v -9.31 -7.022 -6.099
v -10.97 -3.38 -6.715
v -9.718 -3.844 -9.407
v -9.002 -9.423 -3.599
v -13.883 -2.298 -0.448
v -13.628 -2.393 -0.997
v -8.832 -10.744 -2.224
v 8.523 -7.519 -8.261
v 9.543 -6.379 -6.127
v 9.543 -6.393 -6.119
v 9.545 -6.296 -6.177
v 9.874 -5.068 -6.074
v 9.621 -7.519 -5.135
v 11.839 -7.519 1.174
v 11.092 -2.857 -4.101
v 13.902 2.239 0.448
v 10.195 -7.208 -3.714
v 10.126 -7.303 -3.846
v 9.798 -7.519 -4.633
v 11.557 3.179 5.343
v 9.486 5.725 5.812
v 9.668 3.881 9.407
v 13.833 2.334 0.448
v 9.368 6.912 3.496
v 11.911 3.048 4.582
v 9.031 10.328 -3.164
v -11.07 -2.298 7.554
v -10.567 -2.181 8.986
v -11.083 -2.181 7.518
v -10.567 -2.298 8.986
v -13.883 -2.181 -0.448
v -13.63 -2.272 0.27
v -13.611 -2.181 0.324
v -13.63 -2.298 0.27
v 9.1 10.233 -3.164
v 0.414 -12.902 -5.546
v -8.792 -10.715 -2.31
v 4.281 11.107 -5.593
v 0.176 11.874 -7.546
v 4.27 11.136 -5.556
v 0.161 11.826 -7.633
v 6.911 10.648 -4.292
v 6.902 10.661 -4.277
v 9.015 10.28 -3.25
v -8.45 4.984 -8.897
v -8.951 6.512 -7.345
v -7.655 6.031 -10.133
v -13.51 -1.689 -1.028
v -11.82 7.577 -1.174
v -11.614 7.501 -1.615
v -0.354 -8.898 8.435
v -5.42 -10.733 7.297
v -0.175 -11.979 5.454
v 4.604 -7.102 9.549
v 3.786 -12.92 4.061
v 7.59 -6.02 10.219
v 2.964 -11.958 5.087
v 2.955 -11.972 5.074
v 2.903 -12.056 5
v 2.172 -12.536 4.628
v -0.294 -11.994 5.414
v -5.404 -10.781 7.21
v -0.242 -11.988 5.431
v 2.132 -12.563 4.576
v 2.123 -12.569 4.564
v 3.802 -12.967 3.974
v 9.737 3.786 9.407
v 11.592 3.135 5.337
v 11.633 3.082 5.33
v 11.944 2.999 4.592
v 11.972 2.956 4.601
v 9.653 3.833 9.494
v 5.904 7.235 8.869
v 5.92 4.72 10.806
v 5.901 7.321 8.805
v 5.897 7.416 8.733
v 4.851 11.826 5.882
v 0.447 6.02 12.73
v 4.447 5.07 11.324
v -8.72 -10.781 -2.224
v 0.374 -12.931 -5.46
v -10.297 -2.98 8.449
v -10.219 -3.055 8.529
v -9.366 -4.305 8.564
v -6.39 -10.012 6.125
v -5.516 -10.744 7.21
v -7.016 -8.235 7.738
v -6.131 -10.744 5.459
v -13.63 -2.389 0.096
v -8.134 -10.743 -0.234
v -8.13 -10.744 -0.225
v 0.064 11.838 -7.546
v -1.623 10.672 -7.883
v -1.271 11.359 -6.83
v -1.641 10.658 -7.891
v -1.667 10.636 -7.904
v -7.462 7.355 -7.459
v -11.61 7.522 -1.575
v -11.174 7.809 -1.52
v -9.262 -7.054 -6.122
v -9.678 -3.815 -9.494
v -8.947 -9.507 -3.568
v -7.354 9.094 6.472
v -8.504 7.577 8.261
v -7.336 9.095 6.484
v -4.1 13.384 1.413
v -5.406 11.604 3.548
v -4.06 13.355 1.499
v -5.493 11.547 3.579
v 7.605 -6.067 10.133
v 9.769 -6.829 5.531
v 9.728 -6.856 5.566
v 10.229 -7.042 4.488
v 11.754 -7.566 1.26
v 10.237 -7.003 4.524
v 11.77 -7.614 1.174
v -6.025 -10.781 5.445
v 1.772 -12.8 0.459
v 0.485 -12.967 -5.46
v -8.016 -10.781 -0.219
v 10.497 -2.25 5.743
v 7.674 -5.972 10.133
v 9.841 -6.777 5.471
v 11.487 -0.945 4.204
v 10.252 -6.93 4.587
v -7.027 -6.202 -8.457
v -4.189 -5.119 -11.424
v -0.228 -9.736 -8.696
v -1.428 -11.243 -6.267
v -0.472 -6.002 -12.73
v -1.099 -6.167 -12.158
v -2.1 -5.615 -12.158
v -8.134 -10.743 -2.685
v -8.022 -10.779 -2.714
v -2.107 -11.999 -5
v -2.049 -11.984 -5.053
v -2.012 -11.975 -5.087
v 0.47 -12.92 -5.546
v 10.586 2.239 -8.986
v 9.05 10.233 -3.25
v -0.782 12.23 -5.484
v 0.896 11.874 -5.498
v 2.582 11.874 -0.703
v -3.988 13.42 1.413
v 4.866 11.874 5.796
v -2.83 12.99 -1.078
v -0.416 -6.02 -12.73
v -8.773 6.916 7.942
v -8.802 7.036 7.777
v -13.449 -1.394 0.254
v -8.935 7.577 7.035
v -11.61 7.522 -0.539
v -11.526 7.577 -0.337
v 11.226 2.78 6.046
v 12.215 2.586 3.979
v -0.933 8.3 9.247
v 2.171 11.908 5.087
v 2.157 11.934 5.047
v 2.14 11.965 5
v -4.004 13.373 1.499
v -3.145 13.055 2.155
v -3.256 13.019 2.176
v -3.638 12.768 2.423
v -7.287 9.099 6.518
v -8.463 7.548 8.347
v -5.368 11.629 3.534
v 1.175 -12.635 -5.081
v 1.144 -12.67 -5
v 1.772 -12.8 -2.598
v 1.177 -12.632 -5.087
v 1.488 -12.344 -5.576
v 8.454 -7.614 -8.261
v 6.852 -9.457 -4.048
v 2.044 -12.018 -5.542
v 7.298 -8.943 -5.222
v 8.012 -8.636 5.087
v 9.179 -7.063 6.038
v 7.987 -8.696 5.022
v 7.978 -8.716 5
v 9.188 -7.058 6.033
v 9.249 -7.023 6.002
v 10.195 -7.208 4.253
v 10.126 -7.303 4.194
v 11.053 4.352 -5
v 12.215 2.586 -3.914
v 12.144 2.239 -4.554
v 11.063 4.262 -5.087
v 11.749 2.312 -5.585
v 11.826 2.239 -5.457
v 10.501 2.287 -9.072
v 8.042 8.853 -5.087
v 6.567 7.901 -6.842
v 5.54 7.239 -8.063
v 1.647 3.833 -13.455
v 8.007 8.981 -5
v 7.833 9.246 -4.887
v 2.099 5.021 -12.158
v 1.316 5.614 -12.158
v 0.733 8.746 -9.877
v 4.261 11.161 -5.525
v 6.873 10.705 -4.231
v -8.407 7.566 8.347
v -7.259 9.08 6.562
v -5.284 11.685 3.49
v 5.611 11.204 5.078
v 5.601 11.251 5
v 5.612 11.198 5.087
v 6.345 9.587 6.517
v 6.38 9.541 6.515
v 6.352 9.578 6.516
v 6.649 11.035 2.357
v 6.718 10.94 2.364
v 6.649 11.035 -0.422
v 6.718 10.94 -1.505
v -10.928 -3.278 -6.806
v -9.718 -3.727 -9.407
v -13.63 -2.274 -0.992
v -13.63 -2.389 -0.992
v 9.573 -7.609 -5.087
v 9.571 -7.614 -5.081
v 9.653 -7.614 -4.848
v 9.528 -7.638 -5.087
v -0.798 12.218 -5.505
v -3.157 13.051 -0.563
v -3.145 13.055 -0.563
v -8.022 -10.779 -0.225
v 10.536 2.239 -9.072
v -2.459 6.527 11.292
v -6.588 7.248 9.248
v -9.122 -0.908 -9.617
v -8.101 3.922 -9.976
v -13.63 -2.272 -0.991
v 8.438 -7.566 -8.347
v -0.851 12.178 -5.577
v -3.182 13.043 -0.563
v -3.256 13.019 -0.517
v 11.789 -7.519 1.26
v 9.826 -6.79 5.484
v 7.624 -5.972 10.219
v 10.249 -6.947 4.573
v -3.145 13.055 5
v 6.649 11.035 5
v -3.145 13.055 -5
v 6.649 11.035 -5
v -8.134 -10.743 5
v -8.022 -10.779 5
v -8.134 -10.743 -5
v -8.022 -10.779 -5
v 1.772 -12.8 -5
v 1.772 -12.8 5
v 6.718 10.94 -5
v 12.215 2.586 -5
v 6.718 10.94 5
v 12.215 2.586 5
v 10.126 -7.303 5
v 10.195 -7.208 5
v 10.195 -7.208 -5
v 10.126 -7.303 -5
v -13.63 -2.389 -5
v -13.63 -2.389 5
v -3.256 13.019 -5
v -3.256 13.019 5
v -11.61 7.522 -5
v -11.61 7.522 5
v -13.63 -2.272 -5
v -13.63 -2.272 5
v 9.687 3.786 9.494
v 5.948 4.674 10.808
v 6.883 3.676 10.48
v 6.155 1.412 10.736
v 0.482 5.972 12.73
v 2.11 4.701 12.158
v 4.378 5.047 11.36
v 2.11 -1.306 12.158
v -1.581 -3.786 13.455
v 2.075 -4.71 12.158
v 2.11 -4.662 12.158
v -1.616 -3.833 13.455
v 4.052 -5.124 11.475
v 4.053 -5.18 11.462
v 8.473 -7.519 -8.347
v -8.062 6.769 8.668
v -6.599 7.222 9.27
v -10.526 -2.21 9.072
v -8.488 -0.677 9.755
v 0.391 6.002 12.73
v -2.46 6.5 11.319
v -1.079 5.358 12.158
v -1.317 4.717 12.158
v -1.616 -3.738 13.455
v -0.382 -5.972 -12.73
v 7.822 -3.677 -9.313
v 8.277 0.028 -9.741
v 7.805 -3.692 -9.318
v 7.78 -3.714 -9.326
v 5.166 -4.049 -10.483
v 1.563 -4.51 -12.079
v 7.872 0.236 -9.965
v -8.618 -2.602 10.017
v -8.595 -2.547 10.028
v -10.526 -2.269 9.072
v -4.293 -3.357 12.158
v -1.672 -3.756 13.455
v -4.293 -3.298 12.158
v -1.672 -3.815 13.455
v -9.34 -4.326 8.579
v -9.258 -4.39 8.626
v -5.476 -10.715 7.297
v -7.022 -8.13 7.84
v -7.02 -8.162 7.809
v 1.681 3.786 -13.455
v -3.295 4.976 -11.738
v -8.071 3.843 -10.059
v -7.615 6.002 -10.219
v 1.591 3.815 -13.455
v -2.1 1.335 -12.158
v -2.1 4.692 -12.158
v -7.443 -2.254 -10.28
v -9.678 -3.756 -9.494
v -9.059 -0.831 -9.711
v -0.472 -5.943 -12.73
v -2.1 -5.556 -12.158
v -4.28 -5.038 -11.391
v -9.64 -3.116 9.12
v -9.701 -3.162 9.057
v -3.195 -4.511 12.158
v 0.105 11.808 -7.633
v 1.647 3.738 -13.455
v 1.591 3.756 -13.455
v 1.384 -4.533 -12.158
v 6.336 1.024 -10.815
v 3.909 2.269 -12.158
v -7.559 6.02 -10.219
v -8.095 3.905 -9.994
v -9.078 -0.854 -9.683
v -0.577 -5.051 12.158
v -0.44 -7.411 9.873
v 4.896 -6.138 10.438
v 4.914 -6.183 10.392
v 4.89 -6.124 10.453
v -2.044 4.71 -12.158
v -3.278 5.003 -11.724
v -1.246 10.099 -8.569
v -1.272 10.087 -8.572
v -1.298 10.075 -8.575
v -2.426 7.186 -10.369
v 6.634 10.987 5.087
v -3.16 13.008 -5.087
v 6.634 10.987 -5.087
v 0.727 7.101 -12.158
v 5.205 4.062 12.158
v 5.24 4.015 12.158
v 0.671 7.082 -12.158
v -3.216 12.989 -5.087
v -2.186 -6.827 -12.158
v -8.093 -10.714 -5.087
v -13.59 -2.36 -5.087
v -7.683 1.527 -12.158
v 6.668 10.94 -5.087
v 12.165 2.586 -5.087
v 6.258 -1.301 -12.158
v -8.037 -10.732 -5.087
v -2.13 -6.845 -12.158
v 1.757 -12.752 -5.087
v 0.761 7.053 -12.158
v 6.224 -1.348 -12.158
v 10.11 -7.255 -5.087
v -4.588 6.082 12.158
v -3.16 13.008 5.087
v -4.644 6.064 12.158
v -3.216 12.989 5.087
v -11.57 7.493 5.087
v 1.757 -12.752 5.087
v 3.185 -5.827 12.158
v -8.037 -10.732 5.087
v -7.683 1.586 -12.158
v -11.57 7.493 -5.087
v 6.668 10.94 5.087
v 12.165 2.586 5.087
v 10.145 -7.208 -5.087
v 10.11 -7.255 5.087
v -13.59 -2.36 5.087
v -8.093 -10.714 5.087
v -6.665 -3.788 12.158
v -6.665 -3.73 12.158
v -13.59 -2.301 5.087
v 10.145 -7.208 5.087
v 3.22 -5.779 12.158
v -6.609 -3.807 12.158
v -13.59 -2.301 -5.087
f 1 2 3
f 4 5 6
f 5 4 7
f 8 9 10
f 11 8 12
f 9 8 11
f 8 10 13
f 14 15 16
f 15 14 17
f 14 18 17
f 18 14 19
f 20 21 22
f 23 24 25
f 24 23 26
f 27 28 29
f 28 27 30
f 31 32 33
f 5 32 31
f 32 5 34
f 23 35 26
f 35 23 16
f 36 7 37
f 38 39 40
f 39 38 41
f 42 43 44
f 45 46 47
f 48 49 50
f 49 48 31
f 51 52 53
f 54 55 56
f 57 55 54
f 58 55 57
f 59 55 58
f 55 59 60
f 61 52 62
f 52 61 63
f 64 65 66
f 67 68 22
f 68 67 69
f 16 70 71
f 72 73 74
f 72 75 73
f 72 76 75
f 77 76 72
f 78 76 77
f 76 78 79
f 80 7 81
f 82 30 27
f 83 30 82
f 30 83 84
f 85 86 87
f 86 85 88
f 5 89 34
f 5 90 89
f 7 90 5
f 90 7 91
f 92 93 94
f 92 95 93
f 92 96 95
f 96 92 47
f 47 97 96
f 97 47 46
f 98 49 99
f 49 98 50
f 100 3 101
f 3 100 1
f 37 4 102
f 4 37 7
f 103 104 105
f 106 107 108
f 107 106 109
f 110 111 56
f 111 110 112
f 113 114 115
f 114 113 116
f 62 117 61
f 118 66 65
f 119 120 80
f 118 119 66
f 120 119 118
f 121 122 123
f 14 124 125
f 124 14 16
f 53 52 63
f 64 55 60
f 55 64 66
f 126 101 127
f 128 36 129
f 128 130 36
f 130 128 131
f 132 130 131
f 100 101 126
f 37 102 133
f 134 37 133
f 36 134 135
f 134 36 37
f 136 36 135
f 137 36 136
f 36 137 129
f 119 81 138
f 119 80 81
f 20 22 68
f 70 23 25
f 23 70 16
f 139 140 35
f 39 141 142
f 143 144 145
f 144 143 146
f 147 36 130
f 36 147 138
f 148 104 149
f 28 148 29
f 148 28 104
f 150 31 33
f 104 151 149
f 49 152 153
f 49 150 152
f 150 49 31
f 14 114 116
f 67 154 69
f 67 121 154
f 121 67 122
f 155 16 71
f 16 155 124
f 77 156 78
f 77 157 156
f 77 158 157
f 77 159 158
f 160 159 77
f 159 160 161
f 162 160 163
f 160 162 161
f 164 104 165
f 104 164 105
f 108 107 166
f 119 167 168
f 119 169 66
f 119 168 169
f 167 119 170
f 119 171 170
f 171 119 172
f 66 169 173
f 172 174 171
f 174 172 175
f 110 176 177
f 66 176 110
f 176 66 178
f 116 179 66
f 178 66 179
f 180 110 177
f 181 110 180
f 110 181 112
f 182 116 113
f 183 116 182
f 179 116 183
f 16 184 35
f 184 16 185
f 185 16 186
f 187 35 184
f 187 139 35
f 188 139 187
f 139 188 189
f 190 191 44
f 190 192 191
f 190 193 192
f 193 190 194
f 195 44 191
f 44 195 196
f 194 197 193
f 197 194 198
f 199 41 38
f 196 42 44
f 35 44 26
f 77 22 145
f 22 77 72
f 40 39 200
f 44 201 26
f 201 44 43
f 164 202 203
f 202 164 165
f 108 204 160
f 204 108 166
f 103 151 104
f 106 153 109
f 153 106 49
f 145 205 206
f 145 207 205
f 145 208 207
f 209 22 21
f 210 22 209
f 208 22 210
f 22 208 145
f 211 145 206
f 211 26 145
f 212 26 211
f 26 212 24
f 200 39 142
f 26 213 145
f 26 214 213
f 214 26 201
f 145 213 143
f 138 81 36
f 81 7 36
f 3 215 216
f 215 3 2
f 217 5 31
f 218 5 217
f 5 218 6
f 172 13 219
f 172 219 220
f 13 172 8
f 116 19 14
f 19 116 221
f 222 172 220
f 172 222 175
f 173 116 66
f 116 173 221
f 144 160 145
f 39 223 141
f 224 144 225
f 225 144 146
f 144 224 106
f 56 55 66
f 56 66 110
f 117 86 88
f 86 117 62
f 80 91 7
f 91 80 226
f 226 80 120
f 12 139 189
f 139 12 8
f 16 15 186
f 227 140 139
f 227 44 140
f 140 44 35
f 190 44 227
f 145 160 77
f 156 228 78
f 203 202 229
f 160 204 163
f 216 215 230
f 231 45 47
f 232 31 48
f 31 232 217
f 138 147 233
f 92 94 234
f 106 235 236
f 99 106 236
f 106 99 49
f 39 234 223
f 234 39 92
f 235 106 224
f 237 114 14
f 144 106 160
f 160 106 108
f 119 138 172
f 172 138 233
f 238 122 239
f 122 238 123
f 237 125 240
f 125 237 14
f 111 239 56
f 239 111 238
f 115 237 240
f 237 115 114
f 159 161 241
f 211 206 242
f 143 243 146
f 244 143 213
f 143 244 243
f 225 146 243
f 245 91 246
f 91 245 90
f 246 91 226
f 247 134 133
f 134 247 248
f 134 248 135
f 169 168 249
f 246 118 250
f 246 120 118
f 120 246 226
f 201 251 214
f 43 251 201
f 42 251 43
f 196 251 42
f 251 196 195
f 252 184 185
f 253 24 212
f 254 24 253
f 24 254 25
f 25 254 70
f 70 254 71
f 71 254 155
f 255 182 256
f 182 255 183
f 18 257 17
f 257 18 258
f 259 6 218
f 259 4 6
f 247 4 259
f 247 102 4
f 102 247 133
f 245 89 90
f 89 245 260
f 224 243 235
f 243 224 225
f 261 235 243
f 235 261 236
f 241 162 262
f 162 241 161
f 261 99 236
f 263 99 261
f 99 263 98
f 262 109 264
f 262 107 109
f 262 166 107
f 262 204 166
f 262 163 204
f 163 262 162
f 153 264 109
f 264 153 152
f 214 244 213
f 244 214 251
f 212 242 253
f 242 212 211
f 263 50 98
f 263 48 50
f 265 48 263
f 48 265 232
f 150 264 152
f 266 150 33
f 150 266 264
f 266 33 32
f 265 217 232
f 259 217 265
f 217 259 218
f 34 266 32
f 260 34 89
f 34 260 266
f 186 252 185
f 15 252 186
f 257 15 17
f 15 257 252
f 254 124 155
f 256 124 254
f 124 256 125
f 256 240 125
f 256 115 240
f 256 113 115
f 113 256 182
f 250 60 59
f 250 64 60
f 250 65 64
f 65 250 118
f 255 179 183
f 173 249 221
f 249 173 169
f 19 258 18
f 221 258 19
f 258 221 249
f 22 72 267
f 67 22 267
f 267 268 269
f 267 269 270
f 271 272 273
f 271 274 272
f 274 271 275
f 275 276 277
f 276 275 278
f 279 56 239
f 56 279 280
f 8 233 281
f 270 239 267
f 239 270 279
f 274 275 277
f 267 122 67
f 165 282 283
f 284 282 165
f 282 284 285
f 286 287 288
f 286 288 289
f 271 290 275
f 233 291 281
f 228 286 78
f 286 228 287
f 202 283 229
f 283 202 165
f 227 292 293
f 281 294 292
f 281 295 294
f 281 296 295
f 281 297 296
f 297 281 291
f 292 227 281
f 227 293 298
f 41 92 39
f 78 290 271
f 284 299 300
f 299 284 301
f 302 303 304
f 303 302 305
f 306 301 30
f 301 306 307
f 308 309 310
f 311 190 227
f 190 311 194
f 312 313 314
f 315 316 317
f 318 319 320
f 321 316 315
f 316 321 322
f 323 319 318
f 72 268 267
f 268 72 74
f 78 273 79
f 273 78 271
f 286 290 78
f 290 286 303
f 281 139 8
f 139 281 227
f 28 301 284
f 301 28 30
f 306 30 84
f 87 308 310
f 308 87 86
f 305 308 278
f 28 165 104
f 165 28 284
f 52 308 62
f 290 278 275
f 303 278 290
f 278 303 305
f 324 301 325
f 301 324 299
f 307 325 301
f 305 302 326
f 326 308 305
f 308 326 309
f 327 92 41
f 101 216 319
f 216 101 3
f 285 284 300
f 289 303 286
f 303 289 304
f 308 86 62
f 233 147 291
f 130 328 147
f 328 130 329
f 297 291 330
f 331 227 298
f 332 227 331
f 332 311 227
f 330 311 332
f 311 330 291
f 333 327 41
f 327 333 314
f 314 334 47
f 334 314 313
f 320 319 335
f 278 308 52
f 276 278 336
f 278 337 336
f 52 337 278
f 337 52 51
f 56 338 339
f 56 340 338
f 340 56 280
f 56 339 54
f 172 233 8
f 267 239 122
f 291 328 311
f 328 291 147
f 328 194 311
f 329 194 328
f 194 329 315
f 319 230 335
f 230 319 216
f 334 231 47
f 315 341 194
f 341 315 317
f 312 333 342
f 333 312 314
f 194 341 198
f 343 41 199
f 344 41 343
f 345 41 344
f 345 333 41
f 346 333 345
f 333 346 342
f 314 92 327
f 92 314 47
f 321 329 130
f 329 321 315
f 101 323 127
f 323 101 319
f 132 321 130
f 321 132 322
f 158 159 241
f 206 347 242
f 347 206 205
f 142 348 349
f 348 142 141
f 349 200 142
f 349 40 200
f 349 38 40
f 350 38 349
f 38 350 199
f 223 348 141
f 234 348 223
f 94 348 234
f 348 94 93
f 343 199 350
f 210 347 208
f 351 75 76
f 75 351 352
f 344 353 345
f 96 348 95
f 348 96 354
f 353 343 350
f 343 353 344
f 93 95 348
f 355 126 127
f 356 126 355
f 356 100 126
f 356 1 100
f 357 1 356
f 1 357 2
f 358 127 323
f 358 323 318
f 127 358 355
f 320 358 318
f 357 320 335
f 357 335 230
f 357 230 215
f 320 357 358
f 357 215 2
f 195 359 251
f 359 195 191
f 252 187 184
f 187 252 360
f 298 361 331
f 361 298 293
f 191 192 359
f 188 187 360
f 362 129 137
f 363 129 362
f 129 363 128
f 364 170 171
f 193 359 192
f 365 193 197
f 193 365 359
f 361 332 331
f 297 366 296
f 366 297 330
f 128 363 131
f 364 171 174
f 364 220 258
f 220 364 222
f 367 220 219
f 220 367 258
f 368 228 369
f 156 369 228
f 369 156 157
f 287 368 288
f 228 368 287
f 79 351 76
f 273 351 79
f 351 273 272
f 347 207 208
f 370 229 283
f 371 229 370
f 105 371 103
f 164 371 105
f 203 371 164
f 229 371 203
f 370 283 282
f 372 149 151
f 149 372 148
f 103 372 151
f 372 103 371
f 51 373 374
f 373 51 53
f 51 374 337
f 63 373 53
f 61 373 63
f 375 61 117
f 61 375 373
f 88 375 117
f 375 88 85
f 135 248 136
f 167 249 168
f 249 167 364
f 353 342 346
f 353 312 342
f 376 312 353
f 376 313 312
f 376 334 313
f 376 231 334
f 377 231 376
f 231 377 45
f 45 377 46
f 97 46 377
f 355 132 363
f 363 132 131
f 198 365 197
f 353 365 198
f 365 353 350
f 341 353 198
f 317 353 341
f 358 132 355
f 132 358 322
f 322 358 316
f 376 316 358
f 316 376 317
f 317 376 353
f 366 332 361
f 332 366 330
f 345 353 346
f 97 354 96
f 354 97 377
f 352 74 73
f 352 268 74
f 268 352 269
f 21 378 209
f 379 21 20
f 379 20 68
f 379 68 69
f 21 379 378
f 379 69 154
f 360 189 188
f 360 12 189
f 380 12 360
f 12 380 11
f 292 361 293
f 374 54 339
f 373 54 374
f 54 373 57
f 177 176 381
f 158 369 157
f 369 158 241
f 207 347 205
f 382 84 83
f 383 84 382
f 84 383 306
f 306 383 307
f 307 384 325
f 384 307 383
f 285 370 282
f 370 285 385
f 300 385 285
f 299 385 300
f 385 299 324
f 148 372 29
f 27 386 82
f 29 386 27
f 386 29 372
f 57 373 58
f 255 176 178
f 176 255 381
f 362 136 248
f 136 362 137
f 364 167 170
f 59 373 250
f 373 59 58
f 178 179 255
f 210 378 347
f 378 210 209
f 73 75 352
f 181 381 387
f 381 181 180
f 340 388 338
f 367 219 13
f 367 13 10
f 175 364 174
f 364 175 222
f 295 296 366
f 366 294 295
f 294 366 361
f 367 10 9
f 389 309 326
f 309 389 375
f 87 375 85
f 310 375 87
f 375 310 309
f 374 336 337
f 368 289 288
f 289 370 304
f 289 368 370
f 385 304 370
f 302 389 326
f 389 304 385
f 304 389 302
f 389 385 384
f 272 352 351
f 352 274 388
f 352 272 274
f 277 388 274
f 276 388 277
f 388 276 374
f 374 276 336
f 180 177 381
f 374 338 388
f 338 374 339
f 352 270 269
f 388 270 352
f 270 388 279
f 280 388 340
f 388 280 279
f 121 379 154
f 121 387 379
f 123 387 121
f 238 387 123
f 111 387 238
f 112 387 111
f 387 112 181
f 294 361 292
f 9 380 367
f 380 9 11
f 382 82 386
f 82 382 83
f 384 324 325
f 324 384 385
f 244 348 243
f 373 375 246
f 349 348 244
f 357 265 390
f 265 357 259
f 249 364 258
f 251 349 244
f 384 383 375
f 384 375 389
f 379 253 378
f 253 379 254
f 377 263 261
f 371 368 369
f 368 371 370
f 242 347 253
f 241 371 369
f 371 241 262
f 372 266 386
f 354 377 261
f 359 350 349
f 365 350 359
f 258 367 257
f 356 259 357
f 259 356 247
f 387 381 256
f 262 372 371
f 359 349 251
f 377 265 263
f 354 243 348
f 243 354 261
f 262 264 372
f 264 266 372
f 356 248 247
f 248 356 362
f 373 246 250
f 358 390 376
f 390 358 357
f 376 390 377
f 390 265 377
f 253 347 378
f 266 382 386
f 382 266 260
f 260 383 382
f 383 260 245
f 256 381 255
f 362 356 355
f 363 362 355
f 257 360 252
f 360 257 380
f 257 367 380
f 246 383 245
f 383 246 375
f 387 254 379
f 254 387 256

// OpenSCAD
// Auto-generated OpenSCAD file

    inner_points = 10*[[0.5189873908693398, 0.4014612830439682, 1.207106781182594], [-0.6624123844142482, -0.37590257703693897, 1.207106781190501], [-0.4603944268129078, 0.6034792406453087, 1.2071067811886023], [0.3169694332679993, -0.5779205346382793, 1.2071067811844927], [0.07113577095377736, 0.7053068776558797, -1.20710678118789], [0.6208150278663372, -0.13006891473940857, -1.207106781190796], [-0.7642400214415109, 0.15562762074331987, -1.2071067811822989], [-0.21456076452895106, -0.6797481716519684, -1.207106781185205], [0.6618356586062716, 1.0939888076974356, 0.4999999999947038], [0.6618356586000035, 1.0939888076967899, -0.5000000000052962], [1.2115149155188314, 0.2586130153021473, 0.49999999999179784], [1.2115149155125633, 0.25861301530150155, -0.5000000000082021], [-1.3549399090726046, -0.23305430929603127, 0.5000000000082021], [-1.3549399090788727, -0.23305430929667703, -0.49999999999179784], [-0.8052606521600446, -1.0684301016913196, 0.5000000000052962], [-0.8052606521663127, -1.0684301016919653, -0.4999999999947038], [-0.3175461590759757, 1.2960067652987761, 0.5000000000007122], [-0.3175461590822439, 1.2960067652981304, -0.49999999999928774], [1.009496957917491, -0.7207688023801, 0.49999999999369654], [1.009496957911223, -0.7207688023807458, -0.5000000000063035], [-1.1529219514712643, 0.7463275083862161, 0.5000000000063035], [-1.1529219514775324, 0.7463275083855703, -0.49999999999369654], [0.17412116552220275, -1.2704480592926601, 0.49999999999928774], [0.1741211655159346, -1.2704480592933058, -0.5000000000007122]];

    outer_points = 10*[[0.014534033109566136, 1.1778924537288806, -0.7546289886538113], [0.48351692784779204, 1.1778924537288806, 0.5795580463764929], [-0.4019230788858629, 1.3325180477160121, 0.14128082798654307], [0.8999740398432211, 1.0232668597417491, -0.31635177026386146], [-0.8751261135739088, -1.068555647675582, -0.22237332202445173], [0.04545416748665429, -1.2872292597821793, -0.5459684355393317], [-0.5435051284440124, -1.068555647675582, 0.7210393778166502], [0.37707515261655067, -1.2872292597821793, 0.39744426430177016], [-0.7574423490735973, 0.5972358354047242, -1.0132606900126142], [-0.963741811855088, -0.37856222329812717, -0.9407439313439117], [0.16313793198696575, 0.37856222329812717, -1.3368558035274942], [-0.043161530794524894, -0.5972358354047242, -1.2643390448587917], [0.043161530794524894, 0.5972358354047242, 1.2643390448587917], [-0.16313793198696575, -0.37856222329812717, 1.3368558035274942], [0.963741811855088, 0.37856222329812717, 0.9407439313439117], [0.7574423490735973, -0.5972358354047242, 1.0132606900126142], [-1.173899461069026, 0.7518614293918557, -0.11735087337226002], [-1.380198923850517, -0.22393662931099567, -0.04483411470355736], [1.0485779387206207, 0.22393662931099567, -0.8985785851375445], [0.8422784759391297, -0.7518614293918557, -0.8260618264688419], [-0.8422784759391297, 0.7518614293918557, 0.8260618264688419], [-1.0485779387206207, -0.22393662931099567, 0.8985785851375445], [1.380198923850517, 0.22393662931099567, 0.04483411470355736], [1.173899461069026, -0.7518614293918557, 0.11735087337226002]];

    // Convex hull for inner set (I)
    module inner_hull() {
        hull() {
            for (p = inner_points) {
                translate(p) sphere(r=0.1);
            }
        }
    }

    // Convex hull for outer set (O) minus inner hull (O \ I)
    module outer_minus_inner() {
        difference() {
            hull() {
                for (p = outer_points) {
                    translate(p) sphere(r=0.1);
                }
            }
            inner_hull(); // Subtract inner hull
        }
    }

    // Convex hull for outer set (O) minus all translated inner hulls
    module outer_minus_AllTranslationInner() {
        difference() {
            hull() {
                for (p = outer_points) {
                    translate(p) sphere(r=0.1);
                }
            }
            hull() {
                translate([0,0,50]) inner_hull();
                translate([0,0,-50]) inner_hull();
            }; // Subtract translated inner hulls
        }
    }

    // Difference between outer_minus_inner and outer_minus_AllTranslationInner
    module outer_minus_inner_diff() {
        difference() {
            // Outer minus inner
            difference() {
                hull() {
                    for (p = outer_points) {
                        translate(p) sphere(r=0.1);
                    }
                }
                inner_hull();
            }

            // Subtract Outer minus AllTranslationInner
            difference() {
                hull() {
                    for (p = outer_points) {
                        translate(p) sphere(r=0.1);
                    }
                }
                hull() {
                    translate([0,0,50]) inner_hull();
                    translate([0,0,-50]) inner_hull();
                };
            }
        }
    }

    // Rendering all with colors applied
    color([1, 0, 0, 0.5]) inner_hull(); // Transparent red
    color([0, 1, 0, 1]) outer_minus_AllTranslationInner(); // Opaque green
    color([1, 1, 0, 1]) outer_minus_inner_diff(); // Opaque yellow
    
